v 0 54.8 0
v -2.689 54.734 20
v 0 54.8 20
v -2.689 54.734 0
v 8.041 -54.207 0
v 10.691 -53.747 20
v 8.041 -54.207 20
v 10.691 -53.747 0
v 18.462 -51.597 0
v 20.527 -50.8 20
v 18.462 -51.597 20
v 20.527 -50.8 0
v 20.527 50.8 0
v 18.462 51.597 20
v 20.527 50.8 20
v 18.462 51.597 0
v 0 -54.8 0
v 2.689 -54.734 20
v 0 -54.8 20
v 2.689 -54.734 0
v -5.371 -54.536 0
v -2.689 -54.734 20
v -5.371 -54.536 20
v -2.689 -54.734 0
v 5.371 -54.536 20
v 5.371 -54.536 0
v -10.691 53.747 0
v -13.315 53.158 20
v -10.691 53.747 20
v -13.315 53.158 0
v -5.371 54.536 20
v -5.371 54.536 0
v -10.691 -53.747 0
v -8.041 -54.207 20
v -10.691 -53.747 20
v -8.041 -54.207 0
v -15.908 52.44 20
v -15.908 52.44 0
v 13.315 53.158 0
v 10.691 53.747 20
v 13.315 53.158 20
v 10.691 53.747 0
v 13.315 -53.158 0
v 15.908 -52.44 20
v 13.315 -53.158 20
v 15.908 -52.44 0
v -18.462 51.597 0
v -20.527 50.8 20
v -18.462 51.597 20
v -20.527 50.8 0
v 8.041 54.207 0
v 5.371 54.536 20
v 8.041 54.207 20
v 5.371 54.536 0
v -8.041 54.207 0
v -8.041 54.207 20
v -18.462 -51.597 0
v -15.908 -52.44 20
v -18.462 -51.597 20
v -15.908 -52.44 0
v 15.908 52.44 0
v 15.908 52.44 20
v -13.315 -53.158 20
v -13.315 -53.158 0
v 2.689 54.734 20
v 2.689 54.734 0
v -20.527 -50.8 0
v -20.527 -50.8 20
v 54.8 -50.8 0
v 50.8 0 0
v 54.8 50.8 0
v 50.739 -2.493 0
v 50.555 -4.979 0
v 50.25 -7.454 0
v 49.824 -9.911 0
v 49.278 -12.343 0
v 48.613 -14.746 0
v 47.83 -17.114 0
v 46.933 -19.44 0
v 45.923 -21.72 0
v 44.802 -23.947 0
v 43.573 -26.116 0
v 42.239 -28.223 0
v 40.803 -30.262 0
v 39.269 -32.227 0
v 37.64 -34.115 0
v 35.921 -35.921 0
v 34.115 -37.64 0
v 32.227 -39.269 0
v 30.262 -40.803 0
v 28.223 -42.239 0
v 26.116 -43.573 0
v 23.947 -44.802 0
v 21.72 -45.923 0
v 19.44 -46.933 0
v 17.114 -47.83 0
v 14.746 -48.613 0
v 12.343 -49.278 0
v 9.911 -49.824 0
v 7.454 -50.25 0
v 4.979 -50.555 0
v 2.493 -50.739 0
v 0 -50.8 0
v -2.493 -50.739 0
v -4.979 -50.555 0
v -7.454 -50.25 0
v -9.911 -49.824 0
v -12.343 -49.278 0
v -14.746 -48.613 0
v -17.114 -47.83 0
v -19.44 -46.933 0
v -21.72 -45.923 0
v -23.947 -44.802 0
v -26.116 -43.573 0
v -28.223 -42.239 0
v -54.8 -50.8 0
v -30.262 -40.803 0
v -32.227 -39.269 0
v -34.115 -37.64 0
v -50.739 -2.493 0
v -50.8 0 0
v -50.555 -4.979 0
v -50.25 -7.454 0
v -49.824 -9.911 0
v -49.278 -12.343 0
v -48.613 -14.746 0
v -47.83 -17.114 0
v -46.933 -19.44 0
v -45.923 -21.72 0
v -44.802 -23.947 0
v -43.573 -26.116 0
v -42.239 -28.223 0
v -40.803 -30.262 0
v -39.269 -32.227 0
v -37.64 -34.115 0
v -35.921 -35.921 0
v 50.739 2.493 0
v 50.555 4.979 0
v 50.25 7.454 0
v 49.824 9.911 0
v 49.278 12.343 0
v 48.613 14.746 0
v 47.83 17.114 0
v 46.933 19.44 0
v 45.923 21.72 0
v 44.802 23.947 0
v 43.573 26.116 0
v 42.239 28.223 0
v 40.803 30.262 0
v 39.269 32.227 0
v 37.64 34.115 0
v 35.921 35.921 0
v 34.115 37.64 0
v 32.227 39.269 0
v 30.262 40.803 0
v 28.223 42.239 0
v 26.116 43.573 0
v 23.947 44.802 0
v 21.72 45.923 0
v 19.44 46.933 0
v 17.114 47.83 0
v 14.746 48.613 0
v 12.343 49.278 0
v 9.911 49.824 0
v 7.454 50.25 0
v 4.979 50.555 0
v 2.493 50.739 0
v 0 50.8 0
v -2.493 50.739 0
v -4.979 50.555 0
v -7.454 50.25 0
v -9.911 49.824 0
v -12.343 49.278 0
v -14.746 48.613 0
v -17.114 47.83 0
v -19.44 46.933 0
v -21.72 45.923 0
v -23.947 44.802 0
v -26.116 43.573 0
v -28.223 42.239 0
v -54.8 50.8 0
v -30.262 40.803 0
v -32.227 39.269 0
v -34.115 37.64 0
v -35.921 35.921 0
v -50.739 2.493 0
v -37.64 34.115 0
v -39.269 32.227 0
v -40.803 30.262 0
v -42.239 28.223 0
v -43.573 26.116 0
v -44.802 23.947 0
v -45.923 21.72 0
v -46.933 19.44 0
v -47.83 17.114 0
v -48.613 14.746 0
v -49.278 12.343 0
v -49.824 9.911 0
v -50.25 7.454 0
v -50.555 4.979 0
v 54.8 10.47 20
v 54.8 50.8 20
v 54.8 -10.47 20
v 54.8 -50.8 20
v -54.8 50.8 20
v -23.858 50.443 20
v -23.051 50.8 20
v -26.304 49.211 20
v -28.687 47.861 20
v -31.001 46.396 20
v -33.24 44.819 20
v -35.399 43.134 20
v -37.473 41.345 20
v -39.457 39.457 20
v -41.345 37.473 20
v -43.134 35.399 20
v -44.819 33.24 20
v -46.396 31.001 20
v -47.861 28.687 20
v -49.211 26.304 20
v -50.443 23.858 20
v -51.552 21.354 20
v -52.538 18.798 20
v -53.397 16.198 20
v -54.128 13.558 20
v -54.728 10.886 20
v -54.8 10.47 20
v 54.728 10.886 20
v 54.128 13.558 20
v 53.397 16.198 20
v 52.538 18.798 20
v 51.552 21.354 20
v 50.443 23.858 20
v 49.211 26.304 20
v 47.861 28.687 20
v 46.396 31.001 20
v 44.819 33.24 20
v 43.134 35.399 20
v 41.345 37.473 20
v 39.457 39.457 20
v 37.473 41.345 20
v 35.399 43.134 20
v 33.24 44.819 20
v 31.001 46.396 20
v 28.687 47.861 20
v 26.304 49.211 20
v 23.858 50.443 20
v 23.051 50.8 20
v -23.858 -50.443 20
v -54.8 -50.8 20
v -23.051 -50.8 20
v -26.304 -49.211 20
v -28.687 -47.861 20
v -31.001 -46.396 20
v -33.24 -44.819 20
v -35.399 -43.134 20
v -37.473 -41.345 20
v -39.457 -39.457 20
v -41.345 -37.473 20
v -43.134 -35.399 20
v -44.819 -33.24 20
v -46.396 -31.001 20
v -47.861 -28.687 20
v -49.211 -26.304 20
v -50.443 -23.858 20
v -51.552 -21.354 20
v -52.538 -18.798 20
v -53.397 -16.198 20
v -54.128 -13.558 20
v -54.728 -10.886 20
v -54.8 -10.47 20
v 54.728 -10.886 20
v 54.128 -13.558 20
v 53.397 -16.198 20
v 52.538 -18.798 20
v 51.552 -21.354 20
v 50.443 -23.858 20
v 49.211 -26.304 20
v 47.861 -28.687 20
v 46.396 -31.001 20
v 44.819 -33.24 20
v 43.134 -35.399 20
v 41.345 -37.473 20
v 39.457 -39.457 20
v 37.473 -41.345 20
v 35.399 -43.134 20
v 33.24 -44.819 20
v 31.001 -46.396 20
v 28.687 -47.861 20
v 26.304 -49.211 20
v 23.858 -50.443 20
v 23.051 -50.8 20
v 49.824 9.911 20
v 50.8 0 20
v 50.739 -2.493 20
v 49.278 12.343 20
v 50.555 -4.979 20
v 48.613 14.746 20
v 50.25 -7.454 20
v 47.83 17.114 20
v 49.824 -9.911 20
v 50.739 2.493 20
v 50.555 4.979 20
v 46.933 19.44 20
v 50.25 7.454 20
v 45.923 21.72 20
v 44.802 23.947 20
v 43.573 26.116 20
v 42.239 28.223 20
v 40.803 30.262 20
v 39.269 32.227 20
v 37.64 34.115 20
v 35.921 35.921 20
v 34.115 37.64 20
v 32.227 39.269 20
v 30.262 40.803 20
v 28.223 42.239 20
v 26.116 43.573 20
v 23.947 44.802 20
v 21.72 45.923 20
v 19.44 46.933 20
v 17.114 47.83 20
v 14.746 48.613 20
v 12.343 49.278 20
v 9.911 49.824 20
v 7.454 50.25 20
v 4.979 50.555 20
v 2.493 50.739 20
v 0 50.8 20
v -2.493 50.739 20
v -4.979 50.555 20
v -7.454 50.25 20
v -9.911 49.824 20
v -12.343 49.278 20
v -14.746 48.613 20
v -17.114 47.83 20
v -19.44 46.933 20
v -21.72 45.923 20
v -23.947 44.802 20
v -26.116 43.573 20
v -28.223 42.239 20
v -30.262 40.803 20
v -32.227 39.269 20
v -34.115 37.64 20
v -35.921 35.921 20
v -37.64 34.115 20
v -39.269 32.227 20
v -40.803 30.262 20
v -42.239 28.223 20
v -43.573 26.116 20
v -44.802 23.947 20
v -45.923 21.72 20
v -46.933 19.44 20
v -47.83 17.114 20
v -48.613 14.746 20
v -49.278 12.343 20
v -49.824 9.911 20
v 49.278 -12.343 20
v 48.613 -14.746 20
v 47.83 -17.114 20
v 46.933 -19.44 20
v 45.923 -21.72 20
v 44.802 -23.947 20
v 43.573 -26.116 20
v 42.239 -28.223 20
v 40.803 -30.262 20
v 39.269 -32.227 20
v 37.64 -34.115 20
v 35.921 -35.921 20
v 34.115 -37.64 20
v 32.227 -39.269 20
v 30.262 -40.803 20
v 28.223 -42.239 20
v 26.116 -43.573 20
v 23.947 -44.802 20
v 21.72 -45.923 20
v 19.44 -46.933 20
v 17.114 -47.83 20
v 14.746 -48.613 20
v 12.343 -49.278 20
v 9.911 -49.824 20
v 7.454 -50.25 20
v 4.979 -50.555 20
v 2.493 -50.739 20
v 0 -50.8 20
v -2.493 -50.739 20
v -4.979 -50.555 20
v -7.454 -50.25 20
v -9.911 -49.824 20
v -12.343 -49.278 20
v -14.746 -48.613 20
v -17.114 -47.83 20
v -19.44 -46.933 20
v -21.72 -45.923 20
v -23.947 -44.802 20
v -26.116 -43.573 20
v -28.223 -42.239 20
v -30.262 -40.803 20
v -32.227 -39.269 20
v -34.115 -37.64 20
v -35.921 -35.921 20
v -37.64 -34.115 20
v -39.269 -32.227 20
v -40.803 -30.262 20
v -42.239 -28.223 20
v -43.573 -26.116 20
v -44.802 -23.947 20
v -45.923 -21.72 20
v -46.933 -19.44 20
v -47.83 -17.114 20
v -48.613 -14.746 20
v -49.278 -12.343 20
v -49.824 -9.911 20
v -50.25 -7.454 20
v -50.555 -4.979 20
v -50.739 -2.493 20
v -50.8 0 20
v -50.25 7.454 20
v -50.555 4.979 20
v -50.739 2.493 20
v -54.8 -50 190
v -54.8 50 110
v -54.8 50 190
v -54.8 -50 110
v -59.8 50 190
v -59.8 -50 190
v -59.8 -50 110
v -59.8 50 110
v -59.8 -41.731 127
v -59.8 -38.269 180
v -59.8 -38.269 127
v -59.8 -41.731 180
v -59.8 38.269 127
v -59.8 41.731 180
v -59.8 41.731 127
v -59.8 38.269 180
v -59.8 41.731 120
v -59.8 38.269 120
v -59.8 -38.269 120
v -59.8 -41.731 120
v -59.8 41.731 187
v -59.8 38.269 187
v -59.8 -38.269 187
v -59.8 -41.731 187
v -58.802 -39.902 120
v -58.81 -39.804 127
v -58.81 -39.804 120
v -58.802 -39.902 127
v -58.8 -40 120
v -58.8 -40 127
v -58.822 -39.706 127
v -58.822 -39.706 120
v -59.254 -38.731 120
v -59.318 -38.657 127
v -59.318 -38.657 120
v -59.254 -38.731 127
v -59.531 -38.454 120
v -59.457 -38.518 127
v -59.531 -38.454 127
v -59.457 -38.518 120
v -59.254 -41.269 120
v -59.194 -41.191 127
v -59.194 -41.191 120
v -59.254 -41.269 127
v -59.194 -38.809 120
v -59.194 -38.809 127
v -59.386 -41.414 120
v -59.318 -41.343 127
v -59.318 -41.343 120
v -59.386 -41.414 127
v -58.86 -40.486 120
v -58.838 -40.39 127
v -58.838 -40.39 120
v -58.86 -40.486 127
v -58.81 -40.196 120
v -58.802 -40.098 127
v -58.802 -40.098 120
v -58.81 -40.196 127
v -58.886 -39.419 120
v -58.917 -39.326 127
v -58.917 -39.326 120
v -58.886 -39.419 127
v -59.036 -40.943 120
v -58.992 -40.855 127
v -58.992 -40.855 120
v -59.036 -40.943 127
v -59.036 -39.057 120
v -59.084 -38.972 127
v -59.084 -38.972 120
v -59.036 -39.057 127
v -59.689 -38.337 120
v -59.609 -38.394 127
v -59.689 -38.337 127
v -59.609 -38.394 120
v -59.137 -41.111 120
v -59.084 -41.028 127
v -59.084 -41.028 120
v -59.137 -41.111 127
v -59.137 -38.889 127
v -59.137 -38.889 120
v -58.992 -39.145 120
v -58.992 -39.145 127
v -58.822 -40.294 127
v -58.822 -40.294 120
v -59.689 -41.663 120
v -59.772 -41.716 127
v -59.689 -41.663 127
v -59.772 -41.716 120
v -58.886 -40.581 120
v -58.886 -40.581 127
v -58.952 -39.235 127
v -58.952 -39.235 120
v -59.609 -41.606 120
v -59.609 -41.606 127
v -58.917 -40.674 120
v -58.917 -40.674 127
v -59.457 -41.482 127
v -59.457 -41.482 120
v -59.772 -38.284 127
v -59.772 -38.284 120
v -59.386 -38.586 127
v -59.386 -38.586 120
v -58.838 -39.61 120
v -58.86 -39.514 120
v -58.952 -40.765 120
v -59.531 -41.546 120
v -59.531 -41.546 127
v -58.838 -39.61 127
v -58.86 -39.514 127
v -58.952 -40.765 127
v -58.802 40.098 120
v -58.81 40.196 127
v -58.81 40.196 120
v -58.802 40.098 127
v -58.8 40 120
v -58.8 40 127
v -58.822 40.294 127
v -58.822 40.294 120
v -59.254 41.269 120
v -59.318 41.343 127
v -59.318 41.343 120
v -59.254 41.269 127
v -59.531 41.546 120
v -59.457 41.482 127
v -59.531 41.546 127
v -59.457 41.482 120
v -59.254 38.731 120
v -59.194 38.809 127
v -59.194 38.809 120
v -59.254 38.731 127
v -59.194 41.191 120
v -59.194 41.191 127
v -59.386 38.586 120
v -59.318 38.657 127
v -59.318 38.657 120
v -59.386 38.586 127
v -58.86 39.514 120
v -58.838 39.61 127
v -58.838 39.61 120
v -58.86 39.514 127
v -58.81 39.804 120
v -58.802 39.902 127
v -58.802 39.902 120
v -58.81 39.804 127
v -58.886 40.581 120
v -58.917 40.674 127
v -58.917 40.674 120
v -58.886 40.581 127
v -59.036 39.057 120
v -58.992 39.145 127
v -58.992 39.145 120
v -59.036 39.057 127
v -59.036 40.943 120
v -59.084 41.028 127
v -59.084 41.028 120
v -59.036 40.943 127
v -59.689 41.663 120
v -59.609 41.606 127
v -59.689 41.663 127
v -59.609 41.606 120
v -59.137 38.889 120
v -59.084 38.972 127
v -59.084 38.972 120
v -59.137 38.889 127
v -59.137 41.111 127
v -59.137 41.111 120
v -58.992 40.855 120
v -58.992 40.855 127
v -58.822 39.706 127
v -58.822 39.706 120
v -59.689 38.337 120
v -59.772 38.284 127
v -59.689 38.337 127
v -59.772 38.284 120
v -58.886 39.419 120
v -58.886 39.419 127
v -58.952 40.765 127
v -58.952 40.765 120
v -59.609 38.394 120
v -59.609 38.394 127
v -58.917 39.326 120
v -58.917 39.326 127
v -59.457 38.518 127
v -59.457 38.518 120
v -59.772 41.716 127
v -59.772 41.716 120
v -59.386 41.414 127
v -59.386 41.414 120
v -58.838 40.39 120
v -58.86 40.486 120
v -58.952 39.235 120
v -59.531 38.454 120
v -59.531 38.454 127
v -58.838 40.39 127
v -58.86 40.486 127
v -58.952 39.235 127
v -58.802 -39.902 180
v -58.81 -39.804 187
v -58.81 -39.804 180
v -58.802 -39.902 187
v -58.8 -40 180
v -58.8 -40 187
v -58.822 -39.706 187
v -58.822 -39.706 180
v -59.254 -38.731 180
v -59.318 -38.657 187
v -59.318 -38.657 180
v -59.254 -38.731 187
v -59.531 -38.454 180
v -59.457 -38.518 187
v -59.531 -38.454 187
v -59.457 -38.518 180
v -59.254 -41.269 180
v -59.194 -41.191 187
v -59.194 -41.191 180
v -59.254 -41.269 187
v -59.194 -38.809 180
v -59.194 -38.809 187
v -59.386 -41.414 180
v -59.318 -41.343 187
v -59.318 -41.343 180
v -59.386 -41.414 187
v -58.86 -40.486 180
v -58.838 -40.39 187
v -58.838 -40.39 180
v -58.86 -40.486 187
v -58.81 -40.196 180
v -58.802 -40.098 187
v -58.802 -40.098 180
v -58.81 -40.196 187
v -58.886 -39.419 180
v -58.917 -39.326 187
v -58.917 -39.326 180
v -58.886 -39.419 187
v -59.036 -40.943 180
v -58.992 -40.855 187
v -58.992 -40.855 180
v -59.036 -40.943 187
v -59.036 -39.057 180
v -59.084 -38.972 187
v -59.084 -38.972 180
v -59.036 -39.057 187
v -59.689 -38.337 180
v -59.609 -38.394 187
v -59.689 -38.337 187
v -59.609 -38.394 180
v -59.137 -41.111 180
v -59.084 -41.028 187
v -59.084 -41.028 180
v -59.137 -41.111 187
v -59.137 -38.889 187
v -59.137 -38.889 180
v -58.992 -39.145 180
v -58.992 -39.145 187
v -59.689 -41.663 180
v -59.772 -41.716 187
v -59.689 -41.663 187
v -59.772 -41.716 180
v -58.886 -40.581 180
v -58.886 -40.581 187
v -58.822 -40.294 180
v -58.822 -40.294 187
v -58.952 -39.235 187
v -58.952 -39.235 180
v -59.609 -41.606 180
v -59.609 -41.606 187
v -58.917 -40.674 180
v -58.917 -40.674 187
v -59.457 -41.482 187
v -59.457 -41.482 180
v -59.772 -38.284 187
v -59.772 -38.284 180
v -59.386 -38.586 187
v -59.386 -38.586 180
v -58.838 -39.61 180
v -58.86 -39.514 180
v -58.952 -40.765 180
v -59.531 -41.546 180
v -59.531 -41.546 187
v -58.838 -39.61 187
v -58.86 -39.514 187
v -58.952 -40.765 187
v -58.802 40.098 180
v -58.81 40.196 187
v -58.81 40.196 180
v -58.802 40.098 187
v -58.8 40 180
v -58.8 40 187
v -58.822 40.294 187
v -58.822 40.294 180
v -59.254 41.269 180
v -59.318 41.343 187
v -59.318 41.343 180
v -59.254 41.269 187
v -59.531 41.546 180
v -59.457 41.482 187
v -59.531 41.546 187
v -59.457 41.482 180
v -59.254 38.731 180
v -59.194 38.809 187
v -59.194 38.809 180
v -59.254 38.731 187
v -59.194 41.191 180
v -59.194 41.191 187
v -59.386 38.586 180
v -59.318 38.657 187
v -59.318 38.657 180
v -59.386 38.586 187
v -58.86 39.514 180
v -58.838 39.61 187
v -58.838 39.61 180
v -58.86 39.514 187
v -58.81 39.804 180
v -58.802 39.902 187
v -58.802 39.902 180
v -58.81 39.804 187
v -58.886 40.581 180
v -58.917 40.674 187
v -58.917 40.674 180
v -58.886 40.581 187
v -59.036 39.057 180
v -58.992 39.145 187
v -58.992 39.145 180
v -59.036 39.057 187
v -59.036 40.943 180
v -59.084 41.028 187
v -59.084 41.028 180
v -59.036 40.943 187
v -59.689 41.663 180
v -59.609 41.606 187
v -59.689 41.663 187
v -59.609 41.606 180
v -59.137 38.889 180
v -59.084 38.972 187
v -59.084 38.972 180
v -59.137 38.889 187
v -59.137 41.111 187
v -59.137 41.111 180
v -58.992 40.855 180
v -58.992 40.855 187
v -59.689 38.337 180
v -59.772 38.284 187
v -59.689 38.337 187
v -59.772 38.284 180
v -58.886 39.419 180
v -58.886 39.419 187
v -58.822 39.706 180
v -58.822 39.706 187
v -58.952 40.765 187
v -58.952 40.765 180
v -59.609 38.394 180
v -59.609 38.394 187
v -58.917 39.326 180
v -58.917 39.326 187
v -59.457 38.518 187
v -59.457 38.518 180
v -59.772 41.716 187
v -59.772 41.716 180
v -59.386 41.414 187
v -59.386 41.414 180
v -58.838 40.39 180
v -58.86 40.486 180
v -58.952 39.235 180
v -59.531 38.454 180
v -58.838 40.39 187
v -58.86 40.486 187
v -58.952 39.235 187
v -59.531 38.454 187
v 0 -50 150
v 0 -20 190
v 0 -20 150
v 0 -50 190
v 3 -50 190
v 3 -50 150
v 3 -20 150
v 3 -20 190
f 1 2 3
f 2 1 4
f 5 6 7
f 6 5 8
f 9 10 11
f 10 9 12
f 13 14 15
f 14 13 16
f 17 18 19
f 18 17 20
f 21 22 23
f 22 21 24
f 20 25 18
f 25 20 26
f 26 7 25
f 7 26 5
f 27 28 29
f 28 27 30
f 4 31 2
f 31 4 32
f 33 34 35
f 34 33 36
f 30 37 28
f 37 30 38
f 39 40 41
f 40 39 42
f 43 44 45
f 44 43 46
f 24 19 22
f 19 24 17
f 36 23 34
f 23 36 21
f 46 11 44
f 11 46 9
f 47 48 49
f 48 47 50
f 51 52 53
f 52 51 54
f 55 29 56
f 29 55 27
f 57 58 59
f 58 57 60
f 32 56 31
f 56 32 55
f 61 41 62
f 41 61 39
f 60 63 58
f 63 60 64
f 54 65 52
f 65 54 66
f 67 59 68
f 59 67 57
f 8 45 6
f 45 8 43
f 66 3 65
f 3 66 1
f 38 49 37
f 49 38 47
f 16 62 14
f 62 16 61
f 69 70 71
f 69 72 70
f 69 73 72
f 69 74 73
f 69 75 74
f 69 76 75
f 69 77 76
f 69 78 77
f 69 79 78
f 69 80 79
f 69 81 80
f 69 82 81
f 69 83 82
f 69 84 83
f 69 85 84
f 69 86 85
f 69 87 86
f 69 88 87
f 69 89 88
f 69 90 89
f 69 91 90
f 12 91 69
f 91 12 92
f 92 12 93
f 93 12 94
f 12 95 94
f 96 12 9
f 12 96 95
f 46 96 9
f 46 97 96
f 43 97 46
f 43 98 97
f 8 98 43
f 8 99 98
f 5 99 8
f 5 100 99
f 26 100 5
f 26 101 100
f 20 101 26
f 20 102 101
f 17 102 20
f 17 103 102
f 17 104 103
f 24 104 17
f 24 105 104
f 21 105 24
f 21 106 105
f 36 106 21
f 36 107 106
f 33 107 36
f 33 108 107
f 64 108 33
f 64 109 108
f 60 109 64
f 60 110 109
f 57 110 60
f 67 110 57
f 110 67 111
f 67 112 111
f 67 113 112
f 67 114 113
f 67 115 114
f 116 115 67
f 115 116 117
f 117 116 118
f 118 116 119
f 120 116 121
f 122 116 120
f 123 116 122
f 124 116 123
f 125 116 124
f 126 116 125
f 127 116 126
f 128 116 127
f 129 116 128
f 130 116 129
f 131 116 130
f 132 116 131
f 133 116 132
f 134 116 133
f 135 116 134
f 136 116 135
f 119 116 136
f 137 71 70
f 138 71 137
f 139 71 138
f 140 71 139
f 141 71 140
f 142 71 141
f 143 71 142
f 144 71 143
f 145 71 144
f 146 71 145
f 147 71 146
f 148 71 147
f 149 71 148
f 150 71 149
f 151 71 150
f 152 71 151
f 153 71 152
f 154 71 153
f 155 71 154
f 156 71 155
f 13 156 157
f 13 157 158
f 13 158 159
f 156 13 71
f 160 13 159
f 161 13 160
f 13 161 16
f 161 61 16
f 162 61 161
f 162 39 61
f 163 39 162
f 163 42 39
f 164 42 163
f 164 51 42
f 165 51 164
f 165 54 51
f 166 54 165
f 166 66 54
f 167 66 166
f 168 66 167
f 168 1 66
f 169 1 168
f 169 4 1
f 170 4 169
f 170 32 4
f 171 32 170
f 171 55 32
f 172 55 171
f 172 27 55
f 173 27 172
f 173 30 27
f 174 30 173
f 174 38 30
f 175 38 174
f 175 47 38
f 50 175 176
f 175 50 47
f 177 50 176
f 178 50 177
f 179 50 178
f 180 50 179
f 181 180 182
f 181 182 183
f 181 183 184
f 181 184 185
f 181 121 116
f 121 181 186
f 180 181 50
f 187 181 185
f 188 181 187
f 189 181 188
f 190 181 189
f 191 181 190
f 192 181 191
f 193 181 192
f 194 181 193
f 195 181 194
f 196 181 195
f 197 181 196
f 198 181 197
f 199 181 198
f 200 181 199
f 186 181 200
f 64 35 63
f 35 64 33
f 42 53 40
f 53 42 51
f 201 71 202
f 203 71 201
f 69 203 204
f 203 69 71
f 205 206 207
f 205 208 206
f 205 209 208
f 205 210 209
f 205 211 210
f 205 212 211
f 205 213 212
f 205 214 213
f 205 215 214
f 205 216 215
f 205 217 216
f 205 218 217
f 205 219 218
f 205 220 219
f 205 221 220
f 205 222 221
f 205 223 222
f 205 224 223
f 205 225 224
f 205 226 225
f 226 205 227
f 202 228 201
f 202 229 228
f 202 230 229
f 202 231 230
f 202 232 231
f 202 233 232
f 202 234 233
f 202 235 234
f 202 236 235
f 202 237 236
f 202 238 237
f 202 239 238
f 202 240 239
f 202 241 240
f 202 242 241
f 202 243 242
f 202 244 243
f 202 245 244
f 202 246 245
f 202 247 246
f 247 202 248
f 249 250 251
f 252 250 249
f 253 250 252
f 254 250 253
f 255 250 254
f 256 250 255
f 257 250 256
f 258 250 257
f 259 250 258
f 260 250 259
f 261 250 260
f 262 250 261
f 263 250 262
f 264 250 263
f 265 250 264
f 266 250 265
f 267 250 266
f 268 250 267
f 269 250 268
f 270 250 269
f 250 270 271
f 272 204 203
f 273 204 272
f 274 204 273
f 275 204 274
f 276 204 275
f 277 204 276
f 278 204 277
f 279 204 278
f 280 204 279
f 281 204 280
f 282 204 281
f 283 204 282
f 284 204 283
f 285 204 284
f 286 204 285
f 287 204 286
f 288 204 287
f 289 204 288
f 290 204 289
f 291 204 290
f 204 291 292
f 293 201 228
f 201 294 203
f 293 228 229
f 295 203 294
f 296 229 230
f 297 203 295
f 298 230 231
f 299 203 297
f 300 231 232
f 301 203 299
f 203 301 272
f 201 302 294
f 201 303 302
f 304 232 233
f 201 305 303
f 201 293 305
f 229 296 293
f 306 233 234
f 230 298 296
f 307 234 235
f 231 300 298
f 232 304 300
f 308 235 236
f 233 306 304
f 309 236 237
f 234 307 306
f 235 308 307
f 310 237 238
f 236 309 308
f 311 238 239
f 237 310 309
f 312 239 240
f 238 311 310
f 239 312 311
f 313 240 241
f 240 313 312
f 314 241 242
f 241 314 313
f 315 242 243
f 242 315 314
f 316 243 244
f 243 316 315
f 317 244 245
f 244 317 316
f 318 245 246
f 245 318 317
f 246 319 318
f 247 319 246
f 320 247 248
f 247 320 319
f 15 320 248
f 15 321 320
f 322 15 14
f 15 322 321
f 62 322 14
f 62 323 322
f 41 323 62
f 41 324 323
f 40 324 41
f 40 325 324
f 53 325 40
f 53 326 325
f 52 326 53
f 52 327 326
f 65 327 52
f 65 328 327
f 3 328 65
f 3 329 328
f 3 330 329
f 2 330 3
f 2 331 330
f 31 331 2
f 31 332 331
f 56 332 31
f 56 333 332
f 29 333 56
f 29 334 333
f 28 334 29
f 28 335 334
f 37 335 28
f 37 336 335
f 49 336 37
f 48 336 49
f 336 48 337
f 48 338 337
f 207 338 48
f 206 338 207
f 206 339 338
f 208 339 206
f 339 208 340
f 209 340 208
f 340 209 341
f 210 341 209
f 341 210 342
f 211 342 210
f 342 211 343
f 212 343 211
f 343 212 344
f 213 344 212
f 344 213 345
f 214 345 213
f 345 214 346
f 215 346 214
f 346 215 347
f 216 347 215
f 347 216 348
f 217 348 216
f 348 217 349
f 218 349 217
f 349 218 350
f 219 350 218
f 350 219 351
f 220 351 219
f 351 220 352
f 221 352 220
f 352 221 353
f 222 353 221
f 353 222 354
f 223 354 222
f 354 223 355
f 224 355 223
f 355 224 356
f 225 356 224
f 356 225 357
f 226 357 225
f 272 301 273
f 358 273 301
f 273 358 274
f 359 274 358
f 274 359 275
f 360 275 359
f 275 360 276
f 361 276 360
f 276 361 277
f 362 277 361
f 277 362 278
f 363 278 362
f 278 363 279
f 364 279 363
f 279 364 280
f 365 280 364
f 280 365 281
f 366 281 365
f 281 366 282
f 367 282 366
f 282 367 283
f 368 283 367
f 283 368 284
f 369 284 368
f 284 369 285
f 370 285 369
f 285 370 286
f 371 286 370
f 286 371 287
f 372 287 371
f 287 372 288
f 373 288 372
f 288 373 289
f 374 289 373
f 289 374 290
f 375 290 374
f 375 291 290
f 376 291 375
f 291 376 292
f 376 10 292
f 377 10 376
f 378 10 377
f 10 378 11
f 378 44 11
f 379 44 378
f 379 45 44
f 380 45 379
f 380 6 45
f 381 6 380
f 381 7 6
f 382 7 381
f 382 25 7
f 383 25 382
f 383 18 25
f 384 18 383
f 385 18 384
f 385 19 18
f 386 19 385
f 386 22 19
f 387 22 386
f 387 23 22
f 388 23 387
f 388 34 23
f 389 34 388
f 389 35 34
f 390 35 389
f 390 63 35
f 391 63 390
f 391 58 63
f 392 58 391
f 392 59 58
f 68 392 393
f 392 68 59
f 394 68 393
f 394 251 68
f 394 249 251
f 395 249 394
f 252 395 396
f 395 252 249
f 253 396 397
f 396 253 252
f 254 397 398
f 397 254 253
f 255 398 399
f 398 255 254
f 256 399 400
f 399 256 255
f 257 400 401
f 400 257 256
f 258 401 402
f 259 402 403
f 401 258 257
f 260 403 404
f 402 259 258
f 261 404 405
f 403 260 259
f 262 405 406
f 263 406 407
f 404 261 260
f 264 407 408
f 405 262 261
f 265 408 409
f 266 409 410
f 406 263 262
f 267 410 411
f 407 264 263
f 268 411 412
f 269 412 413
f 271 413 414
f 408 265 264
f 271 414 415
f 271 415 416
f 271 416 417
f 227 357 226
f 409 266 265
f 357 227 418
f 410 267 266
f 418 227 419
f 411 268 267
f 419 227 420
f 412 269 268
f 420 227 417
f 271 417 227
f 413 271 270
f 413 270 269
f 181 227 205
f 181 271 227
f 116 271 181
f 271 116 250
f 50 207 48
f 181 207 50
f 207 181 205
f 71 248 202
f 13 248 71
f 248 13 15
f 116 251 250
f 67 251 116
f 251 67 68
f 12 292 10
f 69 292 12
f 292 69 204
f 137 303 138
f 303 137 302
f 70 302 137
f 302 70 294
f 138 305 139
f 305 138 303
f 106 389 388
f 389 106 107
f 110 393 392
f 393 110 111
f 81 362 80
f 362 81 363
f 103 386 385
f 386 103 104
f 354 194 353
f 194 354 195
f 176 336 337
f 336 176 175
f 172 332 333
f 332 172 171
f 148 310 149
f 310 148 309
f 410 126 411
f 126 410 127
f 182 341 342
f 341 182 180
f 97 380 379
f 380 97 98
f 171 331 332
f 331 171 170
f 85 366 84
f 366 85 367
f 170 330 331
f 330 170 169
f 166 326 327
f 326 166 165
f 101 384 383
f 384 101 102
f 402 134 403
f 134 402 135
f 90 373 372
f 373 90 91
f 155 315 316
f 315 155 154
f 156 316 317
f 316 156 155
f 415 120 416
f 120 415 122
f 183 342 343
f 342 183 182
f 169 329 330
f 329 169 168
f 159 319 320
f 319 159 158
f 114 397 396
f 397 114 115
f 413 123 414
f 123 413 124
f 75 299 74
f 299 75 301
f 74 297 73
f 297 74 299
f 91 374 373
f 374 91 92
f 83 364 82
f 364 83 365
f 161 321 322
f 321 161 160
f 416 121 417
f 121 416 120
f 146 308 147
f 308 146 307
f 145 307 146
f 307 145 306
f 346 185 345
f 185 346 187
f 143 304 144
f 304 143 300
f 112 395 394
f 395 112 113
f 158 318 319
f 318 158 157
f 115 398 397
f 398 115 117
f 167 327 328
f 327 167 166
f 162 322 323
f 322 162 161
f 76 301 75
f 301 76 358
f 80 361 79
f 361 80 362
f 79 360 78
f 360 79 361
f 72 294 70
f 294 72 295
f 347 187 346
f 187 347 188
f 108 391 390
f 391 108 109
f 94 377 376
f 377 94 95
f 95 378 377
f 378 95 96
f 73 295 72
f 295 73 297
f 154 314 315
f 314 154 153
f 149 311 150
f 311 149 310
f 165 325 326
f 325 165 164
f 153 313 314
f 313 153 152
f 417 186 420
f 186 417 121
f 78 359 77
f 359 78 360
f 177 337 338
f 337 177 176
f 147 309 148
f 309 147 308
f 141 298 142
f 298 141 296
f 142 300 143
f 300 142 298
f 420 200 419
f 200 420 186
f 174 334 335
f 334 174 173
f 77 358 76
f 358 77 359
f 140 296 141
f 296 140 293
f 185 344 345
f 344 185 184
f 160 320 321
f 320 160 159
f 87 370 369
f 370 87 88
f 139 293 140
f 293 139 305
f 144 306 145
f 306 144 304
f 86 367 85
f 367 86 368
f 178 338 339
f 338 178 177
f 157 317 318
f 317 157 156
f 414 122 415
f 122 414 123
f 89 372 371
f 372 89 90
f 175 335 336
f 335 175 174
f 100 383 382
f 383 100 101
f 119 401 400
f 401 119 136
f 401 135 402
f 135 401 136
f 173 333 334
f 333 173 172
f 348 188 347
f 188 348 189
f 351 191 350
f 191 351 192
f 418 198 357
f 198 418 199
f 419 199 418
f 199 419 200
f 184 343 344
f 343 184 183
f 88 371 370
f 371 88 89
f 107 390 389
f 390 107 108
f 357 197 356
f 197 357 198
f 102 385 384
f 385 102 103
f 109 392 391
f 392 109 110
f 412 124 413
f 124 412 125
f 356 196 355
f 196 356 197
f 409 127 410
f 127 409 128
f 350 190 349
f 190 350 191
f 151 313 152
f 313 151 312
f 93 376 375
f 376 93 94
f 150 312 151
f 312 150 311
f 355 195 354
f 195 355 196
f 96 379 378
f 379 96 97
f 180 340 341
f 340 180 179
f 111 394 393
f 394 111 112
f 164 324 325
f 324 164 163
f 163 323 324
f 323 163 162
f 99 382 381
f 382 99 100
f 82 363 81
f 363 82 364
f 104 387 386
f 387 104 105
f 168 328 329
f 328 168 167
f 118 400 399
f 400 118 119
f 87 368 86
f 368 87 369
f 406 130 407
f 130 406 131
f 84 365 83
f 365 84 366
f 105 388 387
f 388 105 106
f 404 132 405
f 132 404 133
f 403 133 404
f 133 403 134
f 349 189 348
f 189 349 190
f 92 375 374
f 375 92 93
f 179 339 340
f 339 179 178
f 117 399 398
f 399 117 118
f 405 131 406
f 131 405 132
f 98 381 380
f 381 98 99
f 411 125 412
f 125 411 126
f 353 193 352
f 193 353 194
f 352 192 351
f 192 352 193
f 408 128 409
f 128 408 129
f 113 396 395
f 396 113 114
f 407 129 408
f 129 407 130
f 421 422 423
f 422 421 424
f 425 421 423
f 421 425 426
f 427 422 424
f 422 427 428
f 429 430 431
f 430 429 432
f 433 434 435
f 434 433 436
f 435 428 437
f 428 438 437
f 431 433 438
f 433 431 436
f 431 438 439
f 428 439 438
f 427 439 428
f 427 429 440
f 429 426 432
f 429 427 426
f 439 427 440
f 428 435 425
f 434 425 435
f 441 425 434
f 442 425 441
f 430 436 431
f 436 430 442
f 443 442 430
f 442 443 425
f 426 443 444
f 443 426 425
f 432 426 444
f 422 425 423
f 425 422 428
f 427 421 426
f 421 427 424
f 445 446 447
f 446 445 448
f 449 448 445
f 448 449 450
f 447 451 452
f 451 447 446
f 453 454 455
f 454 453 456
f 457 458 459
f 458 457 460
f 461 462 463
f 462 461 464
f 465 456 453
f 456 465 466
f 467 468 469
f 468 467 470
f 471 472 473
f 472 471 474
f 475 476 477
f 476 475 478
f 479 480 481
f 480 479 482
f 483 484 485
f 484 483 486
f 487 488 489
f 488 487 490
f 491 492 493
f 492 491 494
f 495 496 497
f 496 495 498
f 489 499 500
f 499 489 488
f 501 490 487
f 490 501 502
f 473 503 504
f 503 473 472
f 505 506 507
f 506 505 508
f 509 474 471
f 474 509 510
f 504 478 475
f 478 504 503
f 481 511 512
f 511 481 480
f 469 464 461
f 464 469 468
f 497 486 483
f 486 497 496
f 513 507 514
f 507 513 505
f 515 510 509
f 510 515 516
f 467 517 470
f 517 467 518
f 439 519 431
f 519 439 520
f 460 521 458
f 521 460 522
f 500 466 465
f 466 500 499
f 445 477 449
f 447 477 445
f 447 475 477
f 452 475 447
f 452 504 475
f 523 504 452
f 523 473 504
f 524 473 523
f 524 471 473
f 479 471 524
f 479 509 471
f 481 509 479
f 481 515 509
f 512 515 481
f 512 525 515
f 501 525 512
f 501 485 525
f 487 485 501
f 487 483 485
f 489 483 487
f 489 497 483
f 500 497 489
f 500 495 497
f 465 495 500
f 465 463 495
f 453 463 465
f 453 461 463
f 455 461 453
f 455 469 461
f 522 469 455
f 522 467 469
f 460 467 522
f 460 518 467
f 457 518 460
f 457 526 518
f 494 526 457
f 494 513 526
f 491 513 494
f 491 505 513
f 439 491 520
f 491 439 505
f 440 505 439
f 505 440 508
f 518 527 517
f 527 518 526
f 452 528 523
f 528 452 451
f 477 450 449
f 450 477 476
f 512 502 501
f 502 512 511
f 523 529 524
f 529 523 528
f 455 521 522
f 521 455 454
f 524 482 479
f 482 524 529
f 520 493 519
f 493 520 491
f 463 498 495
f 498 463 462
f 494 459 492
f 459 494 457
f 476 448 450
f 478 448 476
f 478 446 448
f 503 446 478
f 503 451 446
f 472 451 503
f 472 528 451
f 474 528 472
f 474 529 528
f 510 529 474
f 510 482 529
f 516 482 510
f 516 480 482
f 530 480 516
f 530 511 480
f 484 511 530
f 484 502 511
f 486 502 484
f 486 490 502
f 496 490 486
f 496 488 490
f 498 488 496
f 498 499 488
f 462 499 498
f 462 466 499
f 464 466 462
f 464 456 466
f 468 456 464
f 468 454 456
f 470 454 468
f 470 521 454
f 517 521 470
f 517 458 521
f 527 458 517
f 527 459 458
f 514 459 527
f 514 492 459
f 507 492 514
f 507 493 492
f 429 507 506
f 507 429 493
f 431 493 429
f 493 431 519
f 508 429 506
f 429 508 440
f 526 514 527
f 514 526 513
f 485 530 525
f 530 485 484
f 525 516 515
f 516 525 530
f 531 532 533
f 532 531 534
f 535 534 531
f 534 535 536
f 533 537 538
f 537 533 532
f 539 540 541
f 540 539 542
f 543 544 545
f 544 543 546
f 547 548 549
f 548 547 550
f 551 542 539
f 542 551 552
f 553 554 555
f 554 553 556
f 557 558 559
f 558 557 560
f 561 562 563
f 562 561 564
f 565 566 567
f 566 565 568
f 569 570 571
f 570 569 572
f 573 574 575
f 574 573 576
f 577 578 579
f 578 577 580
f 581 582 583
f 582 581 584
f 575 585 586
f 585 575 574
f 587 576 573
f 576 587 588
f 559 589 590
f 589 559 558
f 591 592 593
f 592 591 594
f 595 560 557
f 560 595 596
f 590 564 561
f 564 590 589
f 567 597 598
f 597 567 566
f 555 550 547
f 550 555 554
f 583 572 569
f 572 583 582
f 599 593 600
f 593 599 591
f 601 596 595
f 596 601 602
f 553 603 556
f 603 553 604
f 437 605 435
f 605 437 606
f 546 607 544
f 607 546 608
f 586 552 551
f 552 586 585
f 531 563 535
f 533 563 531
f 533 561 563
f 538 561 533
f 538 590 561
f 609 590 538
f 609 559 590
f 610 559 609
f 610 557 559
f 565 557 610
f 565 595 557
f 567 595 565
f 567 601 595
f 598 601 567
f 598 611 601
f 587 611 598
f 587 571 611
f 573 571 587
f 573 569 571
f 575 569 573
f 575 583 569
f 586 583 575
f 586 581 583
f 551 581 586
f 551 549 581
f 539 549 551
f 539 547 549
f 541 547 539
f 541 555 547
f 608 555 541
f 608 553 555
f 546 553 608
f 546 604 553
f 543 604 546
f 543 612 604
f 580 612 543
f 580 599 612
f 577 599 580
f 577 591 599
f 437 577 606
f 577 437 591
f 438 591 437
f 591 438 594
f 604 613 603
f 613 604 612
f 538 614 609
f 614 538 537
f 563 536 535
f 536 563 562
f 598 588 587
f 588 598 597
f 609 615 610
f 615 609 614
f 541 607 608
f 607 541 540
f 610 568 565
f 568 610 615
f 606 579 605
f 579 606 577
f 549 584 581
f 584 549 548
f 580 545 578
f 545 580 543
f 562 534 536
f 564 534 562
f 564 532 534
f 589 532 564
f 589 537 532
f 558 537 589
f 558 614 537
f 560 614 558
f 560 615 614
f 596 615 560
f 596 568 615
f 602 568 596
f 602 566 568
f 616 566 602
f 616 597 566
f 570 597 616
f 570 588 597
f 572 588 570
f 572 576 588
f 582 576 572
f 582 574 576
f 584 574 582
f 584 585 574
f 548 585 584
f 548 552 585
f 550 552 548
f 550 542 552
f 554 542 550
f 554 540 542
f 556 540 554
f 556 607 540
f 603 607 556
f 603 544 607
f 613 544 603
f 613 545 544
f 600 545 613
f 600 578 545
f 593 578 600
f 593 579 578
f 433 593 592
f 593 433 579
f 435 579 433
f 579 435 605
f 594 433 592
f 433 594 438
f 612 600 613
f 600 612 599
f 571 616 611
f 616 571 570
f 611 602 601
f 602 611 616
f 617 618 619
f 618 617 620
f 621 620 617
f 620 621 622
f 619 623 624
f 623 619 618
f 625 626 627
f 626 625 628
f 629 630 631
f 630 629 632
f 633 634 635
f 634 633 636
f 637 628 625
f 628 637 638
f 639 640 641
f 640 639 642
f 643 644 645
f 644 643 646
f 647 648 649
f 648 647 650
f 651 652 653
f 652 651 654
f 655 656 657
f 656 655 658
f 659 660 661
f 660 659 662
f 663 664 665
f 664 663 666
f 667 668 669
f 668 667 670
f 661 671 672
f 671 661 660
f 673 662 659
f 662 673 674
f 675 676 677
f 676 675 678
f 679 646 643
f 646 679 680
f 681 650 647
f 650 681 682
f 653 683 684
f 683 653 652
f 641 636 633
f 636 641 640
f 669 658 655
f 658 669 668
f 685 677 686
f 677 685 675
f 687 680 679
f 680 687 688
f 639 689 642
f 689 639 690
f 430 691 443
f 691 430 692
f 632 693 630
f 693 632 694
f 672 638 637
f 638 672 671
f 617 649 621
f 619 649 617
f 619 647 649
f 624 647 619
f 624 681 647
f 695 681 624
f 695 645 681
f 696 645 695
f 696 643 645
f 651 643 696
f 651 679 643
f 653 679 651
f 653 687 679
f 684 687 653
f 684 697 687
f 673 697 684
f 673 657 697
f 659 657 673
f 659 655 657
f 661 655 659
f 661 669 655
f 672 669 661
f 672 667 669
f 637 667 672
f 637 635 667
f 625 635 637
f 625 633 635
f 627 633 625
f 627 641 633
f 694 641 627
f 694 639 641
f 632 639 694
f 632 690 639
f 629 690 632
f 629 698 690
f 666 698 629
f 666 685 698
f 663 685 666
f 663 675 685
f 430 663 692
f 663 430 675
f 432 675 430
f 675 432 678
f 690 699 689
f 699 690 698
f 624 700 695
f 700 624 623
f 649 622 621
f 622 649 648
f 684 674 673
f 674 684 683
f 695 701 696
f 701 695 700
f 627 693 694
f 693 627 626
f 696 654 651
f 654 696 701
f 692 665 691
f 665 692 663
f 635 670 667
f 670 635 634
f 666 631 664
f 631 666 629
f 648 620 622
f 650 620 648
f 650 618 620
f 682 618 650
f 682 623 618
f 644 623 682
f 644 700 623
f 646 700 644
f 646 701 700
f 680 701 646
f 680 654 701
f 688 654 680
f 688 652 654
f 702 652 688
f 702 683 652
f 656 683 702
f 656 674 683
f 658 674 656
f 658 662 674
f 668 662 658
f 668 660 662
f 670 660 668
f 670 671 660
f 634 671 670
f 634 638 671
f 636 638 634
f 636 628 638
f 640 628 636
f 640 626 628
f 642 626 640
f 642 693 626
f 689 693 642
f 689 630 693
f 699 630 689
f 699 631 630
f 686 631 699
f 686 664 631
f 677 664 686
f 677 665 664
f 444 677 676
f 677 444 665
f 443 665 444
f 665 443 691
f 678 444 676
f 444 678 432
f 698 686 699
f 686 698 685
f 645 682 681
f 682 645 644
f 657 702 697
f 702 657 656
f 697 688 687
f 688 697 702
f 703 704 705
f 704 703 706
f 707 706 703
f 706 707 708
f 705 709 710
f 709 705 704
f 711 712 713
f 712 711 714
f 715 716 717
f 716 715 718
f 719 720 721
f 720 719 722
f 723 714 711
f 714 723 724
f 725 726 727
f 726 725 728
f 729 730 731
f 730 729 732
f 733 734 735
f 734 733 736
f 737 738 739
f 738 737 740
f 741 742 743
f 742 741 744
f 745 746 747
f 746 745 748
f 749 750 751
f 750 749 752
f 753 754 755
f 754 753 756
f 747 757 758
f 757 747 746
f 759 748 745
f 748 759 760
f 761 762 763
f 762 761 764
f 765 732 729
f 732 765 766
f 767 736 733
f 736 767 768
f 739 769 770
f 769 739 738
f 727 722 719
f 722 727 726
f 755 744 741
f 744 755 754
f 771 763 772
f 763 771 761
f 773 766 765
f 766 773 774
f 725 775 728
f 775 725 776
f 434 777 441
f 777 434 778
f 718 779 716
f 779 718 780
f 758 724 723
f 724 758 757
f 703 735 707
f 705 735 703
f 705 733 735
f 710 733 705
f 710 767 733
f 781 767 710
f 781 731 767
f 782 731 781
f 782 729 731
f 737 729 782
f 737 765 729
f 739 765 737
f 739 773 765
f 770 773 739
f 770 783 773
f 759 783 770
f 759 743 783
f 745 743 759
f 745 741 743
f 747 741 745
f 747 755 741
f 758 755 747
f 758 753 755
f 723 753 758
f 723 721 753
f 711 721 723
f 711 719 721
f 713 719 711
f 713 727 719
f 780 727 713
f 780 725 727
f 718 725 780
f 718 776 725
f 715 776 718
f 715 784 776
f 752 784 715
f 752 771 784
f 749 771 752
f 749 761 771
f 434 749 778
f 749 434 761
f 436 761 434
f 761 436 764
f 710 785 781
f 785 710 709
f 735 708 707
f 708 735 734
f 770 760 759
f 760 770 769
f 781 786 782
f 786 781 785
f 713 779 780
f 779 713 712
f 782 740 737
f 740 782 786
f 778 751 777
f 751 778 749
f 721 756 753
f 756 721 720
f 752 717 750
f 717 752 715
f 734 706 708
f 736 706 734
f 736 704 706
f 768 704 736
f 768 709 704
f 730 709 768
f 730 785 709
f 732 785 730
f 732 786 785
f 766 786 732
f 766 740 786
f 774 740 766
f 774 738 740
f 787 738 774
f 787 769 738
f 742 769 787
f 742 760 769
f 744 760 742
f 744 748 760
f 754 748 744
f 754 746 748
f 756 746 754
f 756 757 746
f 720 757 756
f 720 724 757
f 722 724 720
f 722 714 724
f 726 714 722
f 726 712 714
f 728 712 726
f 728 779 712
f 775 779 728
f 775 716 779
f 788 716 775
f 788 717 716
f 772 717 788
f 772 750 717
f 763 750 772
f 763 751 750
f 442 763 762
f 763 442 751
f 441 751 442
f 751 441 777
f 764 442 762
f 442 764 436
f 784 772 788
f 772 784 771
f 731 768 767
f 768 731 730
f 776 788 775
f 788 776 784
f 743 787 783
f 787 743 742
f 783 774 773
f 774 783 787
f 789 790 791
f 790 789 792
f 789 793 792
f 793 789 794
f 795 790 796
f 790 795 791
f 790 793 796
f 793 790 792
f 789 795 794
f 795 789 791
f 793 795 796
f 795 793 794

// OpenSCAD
// ShopVac Rat Trap 2025 - Main Trap Body
// Engineer: Gemini
// Date: 2025-08-15
//
// ========== REVISION HIGHLIGHTS ==========
// - NEW: Main body for the horizontal trap design.
// - NEW: Snap-fit receptacles on both ends for modular assembly.
// - NEW: Top-loading port for a removable bait station.
// - NEW: Integrated internal mount for the PIR motion sensor.
// =========================================

// ========== CORE PARAMETERS ==========

// [Dimensions]
tube_diameter = 101.6; // 4 inches
tube_wall_thickness = 4;
body_length = 300;
flat_base_height = 20;

// [Snap-Fit Connector Parameters - Must match trap_entrance.scad]
clip_width = 15;
clip_thickness = 3;
clip_hook_depth = 2;
receptacle_width = clip_width + 0.6; // Tolerance
receptacle_depth = clip_thickness + 0.6; // Tolerance

// [Bait Station Port]
bait_port_diameter = 40;
bait_port_length = 20;

// [PIR Sensor Mount]
pir_mount_width = 40;
pir_mount_height = 30;
pir_mount_thickness = 3;

// [Enclosure Mounting Plate]
mounting_plate_width = 100;
mounting_plate_height = 80;
mounting_plate_thickness = 5;
screw_hole_diameter = 4;
screw_hole_spacing_x = 80;
screw_hole_spacing_y = 60;

$fn = 128;

// ========== MODULES ==========

module snap_fit_receptacle() {
    // The negative space for the snap_fit_clip
    translate([-receptacle_depth/2, -receptacle_width/2, 0]) {
        cube([receptacle_depth, receptacle_width, clip_hook_depth]);
    }
}

module trap_body_main() {
    difference() {
        union() {
            // Main body
            cylinder(h = body_length, d = tube_diameter + (2 * tube_wall_thickness), center = false);

            // Flat base
            translate([- (tube_diameter / 2) - tube_wall_thickness, -tube_diameter / 2, 0]) {
                cube([tube_diameter + (2 * tube_wall_thickness), tube_diameter, flat_base_height]);
            }

            // Bait station port
            translate([0, 0, tube_diameter / 2 + tube_wall_thickness]) {
                rotate([90, 0, 0]) {
                    cylinder(h = bait_port_length, d = bait_port_diameter);
                }
            }
        }

        // Hollow out the inside
        translate([0, 0, -1]) {
            cylinder(h = body_length + 2, d = tube_diameter, center = false);
        }

        // Cut away the top of the flat base to match the tube
        translate([0, 0, flat_base_height]) {
            cylinder(h = body_length, d = tube_diameter + (2 * tube_wall_thickness) + 2, center = false);
        }

        // Snap-fit receptacles
        for (a = [90, 270]) {
            rotate([0, 0, a]) {
                // One at the front
                translate([tube_diameter / 2 + tube_wall_thickness - receptacle_depth, 0, 20]) {
                    snap_fit_receptacle();
                }
                // One at the back
                translate([tube_diameter / 2 + tube_wall_thickness - receptacle_depth, 0, body_length - 20 - clip_hook_depth]) {
                    snap_fit_receptacle();
                }
            }
        }
    }

    // PIR sensor mount
    translate([0, -pir_mount_width/2, body_length/2]) {
        rotate([90,0,0]){
            cube([pir_mount_thickness, pir_mount_width, pir_mount_height]);
        }
    }

    // Mounting plate for commercial enclosure
    translate([-(tube_diameter/2 + tube_wall_thickness + mounting_plate_thickness), -mounting_plate_width/2, body_length/2 - mounting_plate_height/2]) {
        difference() {
            cube([mounting_plate_thickness, mounting_plate_width, mounting_plate_height]);
            // Screw holes
            translate([-1, mounting_plate_width/2 - screw_hole_spacing_x/2, mounting_plate_height/2 - screw_hole_spacing_y/2]) {
                cylinder(h = mounting_plate_thickness + 2, d = screw_hole_diameter);
            }
            translate([-1, mounting_plate_width/2 + screw_hole_spacing_x/2, mounting_plate_height/2 - screw_hole_spacing_y/2]) {
                cylinder(h = mounting_plate_thickness + 2, d = screw_hole_diameter);
            }
            translate([-1, mounting_plate_width/2 - screw_hole_spacing_x/2, mounting_plate_height/2 + screw_hole_spacing_y/2]) {
                cylinder(h = mounting_plate_thickness + 2, d = screw_hole_diameter);
            }
            translate([-1, mounting_plate_width/2 + screw_hole_spacing_x/2, mounting_plate_height/2 + screw_hole_spacing_y/2]) {
                cylinder(h = mounting_plate_thickness + 2, d = screw_hole_diameter);
            }
        }
    }
}

// ========== ASSEMBLY CALL ==========
trap_body_main();
